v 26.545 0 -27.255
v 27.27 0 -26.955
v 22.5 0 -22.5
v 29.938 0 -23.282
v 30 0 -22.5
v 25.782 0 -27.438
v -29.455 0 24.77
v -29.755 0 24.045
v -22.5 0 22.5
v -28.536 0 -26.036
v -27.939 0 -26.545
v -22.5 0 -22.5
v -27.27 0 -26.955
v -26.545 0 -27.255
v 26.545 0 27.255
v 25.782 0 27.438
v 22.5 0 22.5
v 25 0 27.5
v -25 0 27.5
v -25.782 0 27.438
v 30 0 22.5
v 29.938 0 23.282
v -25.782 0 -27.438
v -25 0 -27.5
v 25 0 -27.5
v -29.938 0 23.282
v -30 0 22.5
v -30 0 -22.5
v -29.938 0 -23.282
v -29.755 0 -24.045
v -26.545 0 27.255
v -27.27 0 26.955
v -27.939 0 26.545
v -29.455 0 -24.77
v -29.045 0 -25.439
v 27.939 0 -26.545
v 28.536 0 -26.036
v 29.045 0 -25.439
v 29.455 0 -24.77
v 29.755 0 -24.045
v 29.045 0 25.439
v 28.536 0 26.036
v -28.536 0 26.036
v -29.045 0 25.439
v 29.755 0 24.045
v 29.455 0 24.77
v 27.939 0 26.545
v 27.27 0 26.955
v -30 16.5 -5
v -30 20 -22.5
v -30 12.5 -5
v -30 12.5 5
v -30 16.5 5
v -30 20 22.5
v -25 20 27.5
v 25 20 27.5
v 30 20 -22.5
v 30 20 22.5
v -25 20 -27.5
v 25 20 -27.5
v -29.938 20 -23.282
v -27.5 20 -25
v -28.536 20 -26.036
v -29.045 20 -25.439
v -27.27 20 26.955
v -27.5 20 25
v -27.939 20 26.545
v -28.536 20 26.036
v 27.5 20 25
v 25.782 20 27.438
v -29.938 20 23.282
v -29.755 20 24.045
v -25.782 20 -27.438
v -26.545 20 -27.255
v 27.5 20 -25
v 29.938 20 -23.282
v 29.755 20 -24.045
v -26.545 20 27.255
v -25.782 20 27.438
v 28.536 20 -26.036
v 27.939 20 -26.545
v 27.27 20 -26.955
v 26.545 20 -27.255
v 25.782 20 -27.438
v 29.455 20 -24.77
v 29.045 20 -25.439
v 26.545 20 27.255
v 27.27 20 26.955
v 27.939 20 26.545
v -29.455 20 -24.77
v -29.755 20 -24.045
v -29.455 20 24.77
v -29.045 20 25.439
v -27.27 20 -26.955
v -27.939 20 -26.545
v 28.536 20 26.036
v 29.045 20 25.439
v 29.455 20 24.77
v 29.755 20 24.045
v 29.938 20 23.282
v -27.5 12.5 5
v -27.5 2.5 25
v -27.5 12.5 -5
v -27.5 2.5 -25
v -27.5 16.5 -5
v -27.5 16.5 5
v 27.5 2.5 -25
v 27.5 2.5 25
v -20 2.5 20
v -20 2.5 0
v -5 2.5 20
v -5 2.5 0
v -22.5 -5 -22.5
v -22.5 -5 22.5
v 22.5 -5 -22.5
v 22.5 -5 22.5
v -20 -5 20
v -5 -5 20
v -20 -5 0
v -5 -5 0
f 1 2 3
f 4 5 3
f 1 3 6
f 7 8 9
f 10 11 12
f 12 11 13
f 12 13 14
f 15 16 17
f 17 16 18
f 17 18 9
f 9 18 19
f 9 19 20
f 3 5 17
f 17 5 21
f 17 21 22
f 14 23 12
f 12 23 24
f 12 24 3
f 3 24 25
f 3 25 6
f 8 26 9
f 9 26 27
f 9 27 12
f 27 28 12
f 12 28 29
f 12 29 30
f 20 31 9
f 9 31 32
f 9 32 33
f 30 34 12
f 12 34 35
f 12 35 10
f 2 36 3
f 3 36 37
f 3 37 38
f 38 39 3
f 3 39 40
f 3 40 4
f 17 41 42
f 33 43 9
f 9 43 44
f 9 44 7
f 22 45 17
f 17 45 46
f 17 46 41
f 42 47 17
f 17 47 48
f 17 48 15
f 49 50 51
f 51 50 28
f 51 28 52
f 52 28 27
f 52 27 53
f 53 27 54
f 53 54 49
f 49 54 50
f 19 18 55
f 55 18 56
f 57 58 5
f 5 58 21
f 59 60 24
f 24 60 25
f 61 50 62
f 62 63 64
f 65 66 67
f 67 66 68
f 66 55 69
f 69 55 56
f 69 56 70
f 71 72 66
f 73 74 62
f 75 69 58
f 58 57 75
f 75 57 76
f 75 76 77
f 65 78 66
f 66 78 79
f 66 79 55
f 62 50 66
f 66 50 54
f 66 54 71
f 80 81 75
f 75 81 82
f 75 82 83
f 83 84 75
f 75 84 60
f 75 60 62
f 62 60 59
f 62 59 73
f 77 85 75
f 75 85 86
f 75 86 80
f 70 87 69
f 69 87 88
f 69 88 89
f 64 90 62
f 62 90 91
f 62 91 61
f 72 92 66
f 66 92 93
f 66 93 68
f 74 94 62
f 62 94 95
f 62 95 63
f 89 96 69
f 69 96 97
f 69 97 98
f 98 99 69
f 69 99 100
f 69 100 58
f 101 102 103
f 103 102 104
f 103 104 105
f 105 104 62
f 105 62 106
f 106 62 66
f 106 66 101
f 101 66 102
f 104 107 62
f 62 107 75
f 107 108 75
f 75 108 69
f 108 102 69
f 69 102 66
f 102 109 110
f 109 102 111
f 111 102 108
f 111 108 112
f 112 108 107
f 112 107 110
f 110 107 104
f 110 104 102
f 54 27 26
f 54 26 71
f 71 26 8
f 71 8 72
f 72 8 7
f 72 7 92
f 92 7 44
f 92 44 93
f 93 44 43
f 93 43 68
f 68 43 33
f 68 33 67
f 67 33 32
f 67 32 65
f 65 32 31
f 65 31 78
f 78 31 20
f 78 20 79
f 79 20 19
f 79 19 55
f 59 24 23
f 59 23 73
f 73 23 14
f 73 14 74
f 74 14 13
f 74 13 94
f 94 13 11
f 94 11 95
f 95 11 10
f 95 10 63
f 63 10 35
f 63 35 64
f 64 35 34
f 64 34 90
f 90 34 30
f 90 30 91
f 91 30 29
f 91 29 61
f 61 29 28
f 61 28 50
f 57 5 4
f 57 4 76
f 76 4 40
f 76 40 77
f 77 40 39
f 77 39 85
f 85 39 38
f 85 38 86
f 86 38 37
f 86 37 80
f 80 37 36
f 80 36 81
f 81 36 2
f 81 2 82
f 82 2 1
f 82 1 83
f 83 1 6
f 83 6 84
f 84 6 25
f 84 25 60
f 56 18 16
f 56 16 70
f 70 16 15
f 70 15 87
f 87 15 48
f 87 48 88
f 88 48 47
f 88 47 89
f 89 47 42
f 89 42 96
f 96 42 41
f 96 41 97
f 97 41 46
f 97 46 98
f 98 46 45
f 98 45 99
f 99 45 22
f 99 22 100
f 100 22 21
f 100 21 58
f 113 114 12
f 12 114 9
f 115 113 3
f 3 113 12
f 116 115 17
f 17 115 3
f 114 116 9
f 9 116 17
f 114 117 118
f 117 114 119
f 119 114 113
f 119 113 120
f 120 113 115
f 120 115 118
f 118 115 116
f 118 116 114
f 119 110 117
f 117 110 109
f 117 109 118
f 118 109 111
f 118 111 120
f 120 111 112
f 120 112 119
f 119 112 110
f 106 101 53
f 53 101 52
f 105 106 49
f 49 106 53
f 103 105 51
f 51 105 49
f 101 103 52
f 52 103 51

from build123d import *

# Parameters (mm, degrees)
SKETCH5_W           = 60
SKETCH5_H           = 55
BOSS_EXTRUDE4_DEPTH = 20
SKETCH6_W           = 55
SKETCH6_H           = 50
CUT_EXTRUDE2_DEPTH  = 17.5
FILLET1_R           = 5
SKETCH8_W           = 45
SKETCH8_H           = 45
BOSS_EXTRUDE5_DEPTH = 5
CUT_EXTRUDE4_REACH  = 49.762
SKETCH9_W           = 15
SKETCH9_H           = 20
CUT_EXTRUDE5_REACH  = 68.802
SKETCH11_W          = 10
SKETCH11_H          = 4


with BuildPart() as part:
    # Sketch5 → Boss-Extrude4 (new body)
    with BuildSketch(Plane(origin=(0, 0, 0), x_dir=(1, 0, 0), z_dir=(0, 1, 0))):
        Rectangle(SKETCH5_W, SKETCH5_H)
    extrude(amount=BOSS_EXTRUDE4_DEPTH)

    # Sketch6 → Cut-Extrude2 (cut)
    with BuildSketch(Plane(origin=(0, 20, 0), x_dir=(1, 0, 0), z_dir=(0, 1, 0))):
        Rectangle(SKETCH6_W, SKETCH6_H)
    extrude(amount=-CUT_EXTRUDE2_DEPTH, mode=Mode.SUBTRACT)

    # Fillet1
    fillet1_edges = [part.edges().sort_by_distance(p)[0] for p in [
        (-30, 10, -27.5),
        (30, 10, -27.5),
        (30, 10, 27.5),
        (-30, 10, 27.5),
    ]]
    fillet(fillet1_edges, radius=FILLET1_R)

    # Sketch8 → Boss-Extrude5 (add)
    with BuildSketch(Plane.XZ):
        Rectangle(SKETCH8_W, SKETCH8_H)
    extrude(amount=BOSS_EXTRUDE5_DEPTH)

    # Sketch9 → Cut-Extrude4 (cut, up to next)
    with BuildSketch(Plane.XZ.offset(5), mode=Mode.PRIVATE) as cut_extrude4_sk1:
        with Locations((-12.5, 10)):
            Rectangle(SKETCH9_W, SKETCH9_H)
    cut_extrude4_tool1 = extrude(cut_extrude4_sk1.sketch, amount=-CUT_EXTRUDE4_REACH, mode=Mode.PRIVATE) & part.part
    add(cut_extrude4_tool1.solids().sort_by_distance((-12.5, -5, 10))[0], mode=Mode.SUBTRACT)

    # Sketch11 → Cut-Extrude5 (cut, up to next)
    with BuildSketch(Plane(origin=(-27.5, 0, 0), x_dir=(0, 0, -1), z_dir=(1, 0, 0)), mode=Mode.PRIVATE) as cut_extrude5_sk1:
        with Locations((0, 14.5)):
            Rectangle(SKETCH11_W, SKETCH11_H)
    cut_extrude5_tool1 = extrude(cut_extrude5_sk1.sketch, amount=-CUT_EXTRUDE5_REACH, mode=Mode.PRIVATE) & part.part
    add(cut_extrude5_tool1.solids().sort_by_distance((-27.5, 14.5, 0))[0], mode=Mode.SUBTRACT)


solid = part.part
